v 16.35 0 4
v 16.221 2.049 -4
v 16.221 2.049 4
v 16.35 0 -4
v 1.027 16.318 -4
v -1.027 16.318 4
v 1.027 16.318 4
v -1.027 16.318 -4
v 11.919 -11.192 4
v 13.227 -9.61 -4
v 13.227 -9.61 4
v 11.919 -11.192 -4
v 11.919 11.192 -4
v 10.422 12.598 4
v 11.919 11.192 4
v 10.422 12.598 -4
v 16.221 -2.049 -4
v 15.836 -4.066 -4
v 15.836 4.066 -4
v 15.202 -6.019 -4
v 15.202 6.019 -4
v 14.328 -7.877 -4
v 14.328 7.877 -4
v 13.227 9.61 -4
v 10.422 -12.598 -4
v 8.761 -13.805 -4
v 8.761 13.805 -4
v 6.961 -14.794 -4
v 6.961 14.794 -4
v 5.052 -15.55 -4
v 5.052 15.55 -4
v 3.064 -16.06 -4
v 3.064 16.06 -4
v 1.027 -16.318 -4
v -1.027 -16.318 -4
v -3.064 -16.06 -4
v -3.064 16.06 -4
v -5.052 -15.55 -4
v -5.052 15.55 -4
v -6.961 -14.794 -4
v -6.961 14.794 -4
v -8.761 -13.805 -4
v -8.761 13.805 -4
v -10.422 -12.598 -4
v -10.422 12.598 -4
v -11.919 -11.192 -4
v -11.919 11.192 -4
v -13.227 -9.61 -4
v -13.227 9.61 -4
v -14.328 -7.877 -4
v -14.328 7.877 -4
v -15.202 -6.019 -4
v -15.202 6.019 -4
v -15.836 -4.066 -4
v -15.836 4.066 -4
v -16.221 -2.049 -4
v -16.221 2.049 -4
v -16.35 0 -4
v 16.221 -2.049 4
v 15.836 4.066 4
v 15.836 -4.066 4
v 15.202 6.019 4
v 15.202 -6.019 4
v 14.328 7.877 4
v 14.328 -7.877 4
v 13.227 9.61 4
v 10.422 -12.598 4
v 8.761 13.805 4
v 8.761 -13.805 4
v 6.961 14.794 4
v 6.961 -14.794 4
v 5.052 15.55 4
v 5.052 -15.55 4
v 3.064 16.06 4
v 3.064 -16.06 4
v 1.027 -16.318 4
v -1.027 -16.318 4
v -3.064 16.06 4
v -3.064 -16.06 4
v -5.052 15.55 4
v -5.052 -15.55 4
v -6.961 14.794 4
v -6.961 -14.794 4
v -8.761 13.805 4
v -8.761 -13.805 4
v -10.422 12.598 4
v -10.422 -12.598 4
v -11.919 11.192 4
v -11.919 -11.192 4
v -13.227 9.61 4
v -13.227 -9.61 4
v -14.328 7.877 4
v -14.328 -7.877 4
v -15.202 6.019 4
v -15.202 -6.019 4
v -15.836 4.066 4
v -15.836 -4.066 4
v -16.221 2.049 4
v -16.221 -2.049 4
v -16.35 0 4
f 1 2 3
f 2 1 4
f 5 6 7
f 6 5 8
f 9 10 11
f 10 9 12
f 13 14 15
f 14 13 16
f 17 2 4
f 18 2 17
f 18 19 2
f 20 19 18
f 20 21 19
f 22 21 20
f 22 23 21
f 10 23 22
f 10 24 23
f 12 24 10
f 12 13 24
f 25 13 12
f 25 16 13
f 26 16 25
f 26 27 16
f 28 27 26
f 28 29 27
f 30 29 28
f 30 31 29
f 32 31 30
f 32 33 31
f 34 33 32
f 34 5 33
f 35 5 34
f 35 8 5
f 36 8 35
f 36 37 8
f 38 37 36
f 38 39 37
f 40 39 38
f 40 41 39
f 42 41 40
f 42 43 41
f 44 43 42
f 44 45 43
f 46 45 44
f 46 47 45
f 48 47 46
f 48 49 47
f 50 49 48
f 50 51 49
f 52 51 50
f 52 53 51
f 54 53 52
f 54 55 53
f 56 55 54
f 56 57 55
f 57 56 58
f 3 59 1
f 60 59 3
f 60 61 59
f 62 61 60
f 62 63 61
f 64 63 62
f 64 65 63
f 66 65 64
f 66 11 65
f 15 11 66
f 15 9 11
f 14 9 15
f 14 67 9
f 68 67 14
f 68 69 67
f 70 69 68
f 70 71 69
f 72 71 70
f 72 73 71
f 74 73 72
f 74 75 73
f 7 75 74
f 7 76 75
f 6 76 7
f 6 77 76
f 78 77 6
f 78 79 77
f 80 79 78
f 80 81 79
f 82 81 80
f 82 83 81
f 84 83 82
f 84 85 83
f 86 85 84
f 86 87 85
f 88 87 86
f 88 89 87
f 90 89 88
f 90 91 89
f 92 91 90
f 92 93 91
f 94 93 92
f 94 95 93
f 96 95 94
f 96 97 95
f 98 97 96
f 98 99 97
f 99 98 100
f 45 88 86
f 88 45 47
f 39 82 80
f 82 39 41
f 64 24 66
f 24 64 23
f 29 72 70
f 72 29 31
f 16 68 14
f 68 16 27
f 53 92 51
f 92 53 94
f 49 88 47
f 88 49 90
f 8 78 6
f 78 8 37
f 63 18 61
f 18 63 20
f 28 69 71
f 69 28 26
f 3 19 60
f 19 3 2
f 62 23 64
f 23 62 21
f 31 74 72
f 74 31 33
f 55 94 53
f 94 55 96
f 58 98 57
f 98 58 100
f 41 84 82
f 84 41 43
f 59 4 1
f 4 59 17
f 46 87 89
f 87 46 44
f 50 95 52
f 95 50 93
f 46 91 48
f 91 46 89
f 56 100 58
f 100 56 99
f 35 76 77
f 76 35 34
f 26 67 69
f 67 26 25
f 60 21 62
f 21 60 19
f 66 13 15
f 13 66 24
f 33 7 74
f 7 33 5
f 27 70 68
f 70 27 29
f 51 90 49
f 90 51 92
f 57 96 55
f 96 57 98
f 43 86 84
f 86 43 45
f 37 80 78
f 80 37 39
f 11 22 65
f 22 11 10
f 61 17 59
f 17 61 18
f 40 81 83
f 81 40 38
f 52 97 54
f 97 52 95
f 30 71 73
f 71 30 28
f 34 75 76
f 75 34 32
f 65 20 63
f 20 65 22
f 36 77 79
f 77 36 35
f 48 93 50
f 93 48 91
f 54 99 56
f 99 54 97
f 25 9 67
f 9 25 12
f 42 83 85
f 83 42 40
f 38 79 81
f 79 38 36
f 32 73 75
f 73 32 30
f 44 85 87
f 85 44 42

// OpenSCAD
$fn = 50;


difference() {
	union() {
		translate(v = [0, 0, -4.0000000000]) {
			cylinder(h = 8, r = 16.3500000000);
		}
	}
	union() {
		translate(v = [0, 0, -100.0000000000]) {
			cylinder(h = 200, r = 0);
		}
	}
}
